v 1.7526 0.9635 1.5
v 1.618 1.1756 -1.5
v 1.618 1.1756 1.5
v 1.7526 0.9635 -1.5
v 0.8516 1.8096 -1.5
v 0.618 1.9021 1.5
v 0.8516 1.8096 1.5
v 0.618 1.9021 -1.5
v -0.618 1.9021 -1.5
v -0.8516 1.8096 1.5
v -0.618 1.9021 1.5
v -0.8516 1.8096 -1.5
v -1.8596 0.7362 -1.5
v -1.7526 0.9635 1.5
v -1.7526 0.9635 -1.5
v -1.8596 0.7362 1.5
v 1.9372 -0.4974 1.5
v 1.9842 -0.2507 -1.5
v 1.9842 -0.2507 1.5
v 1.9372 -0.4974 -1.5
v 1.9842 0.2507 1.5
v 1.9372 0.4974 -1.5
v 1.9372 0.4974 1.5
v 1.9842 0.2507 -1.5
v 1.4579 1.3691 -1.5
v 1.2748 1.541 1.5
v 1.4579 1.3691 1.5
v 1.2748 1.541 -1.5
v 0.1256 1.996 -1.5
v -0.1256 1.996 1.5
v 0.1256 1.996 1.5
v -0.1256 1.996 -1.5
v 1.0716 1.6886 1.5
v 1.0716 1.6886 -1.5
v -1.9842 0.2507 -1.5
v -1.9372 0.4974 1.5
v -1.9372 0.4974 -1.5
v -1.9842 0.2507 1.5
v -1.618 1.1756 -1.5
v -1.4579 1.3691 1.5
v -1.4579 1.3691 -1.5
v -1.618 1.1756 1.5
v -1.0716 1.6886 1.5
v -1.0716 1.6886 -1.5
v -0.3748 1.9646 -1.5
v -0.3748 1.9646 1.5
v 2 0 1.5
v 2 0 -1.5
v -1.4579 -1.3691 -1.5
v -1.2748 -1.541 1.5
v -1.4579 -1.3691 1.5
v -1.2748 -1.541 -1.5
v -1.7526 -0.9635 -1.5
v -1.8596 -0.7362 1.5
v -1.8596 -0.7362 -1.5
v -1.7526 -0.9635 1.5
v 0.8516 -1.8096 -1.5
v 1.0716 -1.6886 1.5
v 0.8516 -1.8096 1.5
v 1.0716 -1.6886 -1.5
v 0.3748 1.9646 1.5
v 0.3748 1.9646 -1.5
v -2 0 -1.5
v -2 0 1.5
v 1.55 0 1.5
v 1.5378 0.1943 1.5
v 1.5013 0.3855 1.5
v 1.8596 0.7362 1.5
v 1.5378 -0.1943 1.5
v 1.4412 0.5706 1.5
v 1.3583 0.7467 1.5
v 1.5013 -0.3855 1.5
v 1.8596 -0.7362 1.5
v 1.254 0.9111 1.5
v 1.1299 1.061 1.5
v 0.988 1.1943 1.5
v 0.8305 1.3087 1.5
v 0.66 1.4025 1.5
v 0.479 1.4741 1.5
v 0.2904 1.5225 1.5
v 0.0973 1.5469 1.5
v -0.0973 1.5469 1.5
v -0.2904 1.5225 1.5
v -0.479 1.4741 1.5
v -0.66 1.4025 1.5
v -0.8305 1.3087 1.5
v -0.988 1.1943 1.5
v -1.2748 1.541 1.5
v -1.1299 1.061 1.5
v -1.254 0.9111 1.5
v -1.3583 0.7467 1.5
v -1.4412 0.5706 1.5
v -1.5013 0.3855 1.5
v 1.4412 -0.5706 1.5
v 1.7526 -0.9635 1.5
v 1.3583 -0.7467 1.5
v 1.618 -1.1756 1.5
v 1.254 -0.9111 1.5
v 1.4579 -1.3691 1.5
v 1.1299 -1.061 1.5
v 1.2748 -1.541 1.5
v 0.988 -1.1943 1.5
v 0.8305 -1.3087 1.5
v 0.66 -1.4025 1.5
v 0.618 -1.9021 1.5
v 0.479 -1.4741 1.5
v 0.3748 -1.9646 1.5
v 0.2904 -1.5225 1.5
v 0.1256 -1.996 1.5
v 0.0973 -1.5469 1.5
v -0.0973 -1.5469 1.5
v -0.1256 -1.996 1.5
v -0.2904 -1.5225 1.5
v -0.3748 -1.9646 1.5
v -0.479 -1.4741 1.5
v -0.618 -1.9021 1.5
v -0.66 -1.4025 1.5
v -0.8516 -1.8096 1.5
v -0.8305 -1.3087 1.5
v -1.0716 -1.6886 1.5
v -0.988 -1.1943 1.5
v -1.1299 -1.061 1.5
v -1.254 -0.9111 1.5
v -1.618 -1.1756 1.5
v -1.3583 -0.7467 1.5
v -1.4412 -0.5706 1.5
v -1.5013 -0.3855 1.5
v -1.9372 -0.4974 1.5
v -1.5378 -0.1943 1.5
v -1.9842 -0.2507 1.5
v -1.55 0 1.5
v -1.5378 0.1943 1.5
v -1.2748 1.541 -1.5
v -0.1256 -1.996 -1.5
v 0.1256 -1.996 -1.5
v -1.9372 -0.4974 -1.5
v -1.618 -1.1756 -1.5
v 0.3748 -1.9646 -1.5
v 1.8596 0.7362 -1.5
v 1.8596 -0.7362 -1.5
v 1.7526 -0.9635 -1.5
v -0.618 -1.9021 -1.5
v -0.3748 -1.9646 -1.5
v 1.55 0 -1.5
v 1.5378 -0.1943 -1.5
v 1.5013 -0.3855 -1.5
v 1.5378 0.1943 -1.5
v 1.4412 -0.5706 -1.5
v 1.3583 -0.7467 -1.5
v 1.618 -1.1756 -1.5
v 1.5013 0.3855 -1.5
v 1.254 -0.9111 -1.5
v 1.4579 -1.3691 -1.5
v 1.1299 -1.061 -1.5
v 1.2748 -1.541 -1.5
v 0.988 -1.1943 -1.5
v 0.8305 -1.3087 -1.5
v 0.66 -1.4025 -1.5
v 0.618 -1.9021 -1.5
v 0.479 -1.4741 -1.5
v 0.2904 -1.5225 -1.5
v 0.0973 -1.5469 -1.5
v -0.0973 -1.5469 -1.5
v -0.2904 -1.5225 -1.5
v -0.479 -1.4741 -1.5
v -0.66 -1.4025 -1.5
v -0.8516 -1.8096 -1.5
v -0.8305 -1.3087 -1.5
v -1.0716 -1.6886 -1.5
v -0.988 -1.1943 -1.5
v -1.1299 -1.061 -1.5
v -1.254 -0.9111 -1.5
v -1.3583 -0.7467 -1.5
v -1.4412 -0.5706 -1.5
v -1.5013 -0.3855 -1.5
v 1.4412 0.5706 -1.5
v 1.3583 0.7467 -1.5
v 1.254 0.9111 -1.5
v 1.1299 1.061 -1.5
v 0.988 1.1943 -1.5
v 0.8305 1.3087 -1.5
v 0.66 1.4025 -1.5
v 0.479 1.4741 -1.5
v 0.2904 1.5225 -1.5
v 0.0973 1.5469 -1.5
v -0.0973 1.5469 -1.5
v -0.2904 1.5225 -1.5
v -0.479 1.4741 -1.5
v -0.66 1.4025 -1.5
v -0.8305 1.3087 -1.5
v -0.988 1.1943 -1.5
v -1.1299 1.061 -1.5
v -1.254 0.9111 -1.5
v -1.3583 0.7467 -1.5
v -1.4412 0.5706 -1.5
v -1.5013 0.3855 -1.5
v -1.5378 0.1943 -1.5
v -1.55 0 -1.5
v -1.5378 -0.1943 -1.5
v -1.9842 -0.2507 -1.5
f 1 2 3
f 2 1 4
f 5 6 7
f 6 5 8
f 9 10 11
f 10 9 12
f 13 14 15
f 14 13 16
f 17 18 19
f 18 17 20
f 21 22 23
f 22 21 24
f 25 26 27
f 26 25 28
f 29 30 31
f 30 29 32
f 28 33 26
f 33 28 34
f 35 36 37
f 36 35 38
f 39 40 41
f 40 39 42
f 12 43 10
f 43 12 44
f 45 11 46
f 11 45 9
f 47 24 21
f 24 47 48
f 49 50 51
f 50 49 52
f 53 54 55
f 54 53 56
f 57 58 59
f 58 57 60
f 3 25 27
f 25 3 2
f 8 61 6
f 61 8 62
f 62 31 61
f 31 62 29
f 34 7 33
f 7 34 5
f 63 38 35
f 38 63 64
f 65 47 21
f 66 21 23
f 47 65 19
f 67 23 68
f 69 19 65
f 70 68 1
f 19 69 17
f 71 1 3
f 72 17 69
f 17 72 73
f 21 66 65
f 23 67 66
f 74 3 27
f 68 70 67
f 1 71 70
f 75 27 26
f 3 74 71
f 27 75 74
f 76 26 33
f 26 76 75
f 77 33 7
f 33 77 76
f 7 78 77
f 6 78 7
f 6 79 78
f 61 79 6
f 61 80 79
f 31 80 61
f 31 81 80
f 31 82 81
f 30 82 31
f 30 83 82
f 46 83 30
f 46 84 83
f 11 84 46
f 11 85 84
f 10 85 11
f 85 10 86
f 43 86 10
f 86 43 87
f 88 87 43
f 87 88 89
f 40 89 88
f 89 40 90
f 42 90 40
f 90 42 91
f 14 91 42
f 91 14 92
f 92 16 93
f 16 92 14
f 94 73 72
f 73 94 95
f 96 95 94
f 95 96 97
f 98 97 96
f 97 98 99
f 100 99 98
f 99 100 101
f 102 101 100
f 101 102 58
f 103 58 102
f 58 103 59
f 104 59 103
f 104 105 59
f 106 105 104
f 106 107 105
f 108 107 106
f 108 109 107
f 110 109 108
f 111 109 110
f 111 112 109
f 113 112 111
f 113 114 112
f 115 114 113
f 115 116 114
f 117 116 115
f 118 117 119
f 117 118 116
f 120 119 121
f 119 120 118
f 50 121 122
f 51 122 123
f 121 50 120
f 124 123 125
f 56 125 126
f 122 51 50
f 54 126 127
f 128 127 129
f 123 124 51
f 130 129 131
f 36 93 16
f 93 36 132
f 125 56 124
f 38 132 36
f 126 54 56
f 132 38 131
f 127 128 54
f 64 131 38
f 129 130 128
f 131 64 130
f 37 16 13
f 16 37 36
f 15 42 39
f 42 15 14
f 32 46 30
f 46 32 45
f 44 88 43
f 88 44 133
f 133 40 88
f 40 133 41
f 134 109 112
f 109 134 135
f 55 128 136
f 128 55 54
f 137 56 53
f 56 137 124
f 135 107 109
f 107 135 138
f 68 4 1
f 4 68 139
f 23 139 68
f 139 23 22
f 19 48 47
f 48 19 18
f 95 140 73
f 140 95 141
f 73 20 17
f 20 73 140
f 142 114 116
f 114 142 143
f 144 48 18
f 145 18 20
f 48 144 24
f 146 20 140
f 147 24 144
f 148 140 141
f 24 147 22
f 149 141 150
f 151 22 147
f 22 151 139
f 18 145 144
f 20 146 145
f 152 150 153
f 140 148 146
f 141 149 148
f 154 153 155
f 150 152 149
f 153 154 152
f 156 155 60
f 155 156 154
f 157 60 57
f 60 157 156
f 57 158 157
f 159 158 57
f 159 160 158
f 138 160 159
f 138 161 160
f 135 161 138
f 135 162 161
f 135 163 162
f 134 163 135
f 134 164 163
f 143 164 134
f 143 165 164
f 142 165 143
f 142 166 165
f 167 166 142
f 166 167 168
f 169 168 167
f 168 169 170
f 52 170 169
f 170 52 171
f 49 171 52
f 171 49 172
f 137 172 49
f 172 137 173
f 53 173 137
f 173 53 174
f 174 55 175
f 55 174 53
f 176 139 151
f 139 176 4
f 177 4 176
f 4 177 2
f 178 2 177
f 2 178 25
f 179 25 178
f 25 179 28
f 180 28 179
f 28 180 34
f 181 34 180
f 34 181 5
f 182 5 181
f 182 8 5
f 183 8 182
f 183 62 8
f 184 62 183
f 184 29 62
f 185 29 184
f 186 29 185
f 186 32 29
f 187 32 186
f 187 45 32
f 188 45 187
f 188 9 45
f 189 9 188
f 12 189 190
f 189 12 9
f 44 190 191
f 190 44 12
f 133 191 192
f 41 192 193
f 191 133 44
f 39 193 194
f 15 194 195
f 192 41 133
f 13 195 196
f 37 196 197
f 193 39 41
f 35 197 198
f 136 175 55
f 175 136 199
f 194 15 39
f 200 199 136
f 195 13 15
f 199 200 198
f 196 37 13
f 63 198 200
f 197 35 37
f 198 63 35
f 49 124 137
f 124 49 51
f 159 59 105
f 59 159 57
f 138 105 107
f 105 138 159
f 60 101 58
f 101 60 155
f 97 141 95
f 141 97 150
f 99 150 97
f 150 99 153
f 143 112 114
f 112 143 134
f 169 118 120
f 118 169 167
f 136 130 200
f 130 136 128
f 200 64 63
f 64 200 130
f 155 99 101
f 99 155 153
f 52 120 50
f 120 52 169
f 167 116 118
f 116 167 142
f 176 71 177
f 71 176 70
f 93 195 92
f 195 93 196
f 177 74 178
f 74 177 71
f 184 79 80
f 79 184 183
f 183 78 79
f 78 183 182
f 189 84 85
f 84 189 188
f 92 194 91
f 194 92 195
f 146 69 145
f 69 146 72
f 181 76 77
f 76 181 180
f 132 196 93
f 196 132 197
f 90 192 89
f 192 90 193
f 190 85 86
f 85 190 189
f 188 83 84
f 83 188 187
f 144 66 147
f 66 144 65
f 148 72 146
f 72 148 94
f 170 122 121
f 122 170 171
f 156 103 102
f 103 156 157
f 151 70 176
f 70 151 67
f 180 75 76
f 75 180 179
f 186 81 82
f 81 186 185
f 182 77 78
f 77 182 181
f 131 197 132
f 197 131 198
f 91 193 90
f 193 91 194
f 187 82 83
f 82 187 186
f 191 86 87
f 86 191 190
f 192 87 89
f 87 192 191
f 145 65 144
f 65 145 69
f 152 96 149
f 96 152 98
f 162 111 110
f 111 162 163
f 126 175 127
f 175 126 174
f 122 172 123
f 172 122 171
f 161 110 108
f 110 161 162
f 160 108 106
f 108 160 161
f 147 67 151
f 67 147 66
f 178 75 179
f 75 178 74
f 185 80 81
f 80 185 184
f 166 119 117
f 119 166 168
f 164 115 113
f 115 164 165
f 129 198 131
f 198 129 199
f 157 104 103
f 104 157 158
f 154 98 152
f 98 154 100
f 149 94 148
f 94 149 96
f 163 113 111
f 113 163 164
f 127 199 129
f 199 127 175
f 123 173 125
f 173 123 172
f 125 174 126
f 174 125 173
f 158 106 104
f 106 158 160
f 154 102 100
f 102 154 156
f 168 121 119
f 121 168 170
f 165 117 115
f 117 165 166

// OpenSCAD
$fn = 50;


difference() {
	union() {
		translate(v = [0, 0, -1.5000000000]) {
			cylinder(h = 3, r = 2.0000000000);
		}
	}
	union() {
		translate(v = [0, 0, -100.0000000000]) {
			cylinder(h = 200, r = 1.5500000000);
		}
	}
}
